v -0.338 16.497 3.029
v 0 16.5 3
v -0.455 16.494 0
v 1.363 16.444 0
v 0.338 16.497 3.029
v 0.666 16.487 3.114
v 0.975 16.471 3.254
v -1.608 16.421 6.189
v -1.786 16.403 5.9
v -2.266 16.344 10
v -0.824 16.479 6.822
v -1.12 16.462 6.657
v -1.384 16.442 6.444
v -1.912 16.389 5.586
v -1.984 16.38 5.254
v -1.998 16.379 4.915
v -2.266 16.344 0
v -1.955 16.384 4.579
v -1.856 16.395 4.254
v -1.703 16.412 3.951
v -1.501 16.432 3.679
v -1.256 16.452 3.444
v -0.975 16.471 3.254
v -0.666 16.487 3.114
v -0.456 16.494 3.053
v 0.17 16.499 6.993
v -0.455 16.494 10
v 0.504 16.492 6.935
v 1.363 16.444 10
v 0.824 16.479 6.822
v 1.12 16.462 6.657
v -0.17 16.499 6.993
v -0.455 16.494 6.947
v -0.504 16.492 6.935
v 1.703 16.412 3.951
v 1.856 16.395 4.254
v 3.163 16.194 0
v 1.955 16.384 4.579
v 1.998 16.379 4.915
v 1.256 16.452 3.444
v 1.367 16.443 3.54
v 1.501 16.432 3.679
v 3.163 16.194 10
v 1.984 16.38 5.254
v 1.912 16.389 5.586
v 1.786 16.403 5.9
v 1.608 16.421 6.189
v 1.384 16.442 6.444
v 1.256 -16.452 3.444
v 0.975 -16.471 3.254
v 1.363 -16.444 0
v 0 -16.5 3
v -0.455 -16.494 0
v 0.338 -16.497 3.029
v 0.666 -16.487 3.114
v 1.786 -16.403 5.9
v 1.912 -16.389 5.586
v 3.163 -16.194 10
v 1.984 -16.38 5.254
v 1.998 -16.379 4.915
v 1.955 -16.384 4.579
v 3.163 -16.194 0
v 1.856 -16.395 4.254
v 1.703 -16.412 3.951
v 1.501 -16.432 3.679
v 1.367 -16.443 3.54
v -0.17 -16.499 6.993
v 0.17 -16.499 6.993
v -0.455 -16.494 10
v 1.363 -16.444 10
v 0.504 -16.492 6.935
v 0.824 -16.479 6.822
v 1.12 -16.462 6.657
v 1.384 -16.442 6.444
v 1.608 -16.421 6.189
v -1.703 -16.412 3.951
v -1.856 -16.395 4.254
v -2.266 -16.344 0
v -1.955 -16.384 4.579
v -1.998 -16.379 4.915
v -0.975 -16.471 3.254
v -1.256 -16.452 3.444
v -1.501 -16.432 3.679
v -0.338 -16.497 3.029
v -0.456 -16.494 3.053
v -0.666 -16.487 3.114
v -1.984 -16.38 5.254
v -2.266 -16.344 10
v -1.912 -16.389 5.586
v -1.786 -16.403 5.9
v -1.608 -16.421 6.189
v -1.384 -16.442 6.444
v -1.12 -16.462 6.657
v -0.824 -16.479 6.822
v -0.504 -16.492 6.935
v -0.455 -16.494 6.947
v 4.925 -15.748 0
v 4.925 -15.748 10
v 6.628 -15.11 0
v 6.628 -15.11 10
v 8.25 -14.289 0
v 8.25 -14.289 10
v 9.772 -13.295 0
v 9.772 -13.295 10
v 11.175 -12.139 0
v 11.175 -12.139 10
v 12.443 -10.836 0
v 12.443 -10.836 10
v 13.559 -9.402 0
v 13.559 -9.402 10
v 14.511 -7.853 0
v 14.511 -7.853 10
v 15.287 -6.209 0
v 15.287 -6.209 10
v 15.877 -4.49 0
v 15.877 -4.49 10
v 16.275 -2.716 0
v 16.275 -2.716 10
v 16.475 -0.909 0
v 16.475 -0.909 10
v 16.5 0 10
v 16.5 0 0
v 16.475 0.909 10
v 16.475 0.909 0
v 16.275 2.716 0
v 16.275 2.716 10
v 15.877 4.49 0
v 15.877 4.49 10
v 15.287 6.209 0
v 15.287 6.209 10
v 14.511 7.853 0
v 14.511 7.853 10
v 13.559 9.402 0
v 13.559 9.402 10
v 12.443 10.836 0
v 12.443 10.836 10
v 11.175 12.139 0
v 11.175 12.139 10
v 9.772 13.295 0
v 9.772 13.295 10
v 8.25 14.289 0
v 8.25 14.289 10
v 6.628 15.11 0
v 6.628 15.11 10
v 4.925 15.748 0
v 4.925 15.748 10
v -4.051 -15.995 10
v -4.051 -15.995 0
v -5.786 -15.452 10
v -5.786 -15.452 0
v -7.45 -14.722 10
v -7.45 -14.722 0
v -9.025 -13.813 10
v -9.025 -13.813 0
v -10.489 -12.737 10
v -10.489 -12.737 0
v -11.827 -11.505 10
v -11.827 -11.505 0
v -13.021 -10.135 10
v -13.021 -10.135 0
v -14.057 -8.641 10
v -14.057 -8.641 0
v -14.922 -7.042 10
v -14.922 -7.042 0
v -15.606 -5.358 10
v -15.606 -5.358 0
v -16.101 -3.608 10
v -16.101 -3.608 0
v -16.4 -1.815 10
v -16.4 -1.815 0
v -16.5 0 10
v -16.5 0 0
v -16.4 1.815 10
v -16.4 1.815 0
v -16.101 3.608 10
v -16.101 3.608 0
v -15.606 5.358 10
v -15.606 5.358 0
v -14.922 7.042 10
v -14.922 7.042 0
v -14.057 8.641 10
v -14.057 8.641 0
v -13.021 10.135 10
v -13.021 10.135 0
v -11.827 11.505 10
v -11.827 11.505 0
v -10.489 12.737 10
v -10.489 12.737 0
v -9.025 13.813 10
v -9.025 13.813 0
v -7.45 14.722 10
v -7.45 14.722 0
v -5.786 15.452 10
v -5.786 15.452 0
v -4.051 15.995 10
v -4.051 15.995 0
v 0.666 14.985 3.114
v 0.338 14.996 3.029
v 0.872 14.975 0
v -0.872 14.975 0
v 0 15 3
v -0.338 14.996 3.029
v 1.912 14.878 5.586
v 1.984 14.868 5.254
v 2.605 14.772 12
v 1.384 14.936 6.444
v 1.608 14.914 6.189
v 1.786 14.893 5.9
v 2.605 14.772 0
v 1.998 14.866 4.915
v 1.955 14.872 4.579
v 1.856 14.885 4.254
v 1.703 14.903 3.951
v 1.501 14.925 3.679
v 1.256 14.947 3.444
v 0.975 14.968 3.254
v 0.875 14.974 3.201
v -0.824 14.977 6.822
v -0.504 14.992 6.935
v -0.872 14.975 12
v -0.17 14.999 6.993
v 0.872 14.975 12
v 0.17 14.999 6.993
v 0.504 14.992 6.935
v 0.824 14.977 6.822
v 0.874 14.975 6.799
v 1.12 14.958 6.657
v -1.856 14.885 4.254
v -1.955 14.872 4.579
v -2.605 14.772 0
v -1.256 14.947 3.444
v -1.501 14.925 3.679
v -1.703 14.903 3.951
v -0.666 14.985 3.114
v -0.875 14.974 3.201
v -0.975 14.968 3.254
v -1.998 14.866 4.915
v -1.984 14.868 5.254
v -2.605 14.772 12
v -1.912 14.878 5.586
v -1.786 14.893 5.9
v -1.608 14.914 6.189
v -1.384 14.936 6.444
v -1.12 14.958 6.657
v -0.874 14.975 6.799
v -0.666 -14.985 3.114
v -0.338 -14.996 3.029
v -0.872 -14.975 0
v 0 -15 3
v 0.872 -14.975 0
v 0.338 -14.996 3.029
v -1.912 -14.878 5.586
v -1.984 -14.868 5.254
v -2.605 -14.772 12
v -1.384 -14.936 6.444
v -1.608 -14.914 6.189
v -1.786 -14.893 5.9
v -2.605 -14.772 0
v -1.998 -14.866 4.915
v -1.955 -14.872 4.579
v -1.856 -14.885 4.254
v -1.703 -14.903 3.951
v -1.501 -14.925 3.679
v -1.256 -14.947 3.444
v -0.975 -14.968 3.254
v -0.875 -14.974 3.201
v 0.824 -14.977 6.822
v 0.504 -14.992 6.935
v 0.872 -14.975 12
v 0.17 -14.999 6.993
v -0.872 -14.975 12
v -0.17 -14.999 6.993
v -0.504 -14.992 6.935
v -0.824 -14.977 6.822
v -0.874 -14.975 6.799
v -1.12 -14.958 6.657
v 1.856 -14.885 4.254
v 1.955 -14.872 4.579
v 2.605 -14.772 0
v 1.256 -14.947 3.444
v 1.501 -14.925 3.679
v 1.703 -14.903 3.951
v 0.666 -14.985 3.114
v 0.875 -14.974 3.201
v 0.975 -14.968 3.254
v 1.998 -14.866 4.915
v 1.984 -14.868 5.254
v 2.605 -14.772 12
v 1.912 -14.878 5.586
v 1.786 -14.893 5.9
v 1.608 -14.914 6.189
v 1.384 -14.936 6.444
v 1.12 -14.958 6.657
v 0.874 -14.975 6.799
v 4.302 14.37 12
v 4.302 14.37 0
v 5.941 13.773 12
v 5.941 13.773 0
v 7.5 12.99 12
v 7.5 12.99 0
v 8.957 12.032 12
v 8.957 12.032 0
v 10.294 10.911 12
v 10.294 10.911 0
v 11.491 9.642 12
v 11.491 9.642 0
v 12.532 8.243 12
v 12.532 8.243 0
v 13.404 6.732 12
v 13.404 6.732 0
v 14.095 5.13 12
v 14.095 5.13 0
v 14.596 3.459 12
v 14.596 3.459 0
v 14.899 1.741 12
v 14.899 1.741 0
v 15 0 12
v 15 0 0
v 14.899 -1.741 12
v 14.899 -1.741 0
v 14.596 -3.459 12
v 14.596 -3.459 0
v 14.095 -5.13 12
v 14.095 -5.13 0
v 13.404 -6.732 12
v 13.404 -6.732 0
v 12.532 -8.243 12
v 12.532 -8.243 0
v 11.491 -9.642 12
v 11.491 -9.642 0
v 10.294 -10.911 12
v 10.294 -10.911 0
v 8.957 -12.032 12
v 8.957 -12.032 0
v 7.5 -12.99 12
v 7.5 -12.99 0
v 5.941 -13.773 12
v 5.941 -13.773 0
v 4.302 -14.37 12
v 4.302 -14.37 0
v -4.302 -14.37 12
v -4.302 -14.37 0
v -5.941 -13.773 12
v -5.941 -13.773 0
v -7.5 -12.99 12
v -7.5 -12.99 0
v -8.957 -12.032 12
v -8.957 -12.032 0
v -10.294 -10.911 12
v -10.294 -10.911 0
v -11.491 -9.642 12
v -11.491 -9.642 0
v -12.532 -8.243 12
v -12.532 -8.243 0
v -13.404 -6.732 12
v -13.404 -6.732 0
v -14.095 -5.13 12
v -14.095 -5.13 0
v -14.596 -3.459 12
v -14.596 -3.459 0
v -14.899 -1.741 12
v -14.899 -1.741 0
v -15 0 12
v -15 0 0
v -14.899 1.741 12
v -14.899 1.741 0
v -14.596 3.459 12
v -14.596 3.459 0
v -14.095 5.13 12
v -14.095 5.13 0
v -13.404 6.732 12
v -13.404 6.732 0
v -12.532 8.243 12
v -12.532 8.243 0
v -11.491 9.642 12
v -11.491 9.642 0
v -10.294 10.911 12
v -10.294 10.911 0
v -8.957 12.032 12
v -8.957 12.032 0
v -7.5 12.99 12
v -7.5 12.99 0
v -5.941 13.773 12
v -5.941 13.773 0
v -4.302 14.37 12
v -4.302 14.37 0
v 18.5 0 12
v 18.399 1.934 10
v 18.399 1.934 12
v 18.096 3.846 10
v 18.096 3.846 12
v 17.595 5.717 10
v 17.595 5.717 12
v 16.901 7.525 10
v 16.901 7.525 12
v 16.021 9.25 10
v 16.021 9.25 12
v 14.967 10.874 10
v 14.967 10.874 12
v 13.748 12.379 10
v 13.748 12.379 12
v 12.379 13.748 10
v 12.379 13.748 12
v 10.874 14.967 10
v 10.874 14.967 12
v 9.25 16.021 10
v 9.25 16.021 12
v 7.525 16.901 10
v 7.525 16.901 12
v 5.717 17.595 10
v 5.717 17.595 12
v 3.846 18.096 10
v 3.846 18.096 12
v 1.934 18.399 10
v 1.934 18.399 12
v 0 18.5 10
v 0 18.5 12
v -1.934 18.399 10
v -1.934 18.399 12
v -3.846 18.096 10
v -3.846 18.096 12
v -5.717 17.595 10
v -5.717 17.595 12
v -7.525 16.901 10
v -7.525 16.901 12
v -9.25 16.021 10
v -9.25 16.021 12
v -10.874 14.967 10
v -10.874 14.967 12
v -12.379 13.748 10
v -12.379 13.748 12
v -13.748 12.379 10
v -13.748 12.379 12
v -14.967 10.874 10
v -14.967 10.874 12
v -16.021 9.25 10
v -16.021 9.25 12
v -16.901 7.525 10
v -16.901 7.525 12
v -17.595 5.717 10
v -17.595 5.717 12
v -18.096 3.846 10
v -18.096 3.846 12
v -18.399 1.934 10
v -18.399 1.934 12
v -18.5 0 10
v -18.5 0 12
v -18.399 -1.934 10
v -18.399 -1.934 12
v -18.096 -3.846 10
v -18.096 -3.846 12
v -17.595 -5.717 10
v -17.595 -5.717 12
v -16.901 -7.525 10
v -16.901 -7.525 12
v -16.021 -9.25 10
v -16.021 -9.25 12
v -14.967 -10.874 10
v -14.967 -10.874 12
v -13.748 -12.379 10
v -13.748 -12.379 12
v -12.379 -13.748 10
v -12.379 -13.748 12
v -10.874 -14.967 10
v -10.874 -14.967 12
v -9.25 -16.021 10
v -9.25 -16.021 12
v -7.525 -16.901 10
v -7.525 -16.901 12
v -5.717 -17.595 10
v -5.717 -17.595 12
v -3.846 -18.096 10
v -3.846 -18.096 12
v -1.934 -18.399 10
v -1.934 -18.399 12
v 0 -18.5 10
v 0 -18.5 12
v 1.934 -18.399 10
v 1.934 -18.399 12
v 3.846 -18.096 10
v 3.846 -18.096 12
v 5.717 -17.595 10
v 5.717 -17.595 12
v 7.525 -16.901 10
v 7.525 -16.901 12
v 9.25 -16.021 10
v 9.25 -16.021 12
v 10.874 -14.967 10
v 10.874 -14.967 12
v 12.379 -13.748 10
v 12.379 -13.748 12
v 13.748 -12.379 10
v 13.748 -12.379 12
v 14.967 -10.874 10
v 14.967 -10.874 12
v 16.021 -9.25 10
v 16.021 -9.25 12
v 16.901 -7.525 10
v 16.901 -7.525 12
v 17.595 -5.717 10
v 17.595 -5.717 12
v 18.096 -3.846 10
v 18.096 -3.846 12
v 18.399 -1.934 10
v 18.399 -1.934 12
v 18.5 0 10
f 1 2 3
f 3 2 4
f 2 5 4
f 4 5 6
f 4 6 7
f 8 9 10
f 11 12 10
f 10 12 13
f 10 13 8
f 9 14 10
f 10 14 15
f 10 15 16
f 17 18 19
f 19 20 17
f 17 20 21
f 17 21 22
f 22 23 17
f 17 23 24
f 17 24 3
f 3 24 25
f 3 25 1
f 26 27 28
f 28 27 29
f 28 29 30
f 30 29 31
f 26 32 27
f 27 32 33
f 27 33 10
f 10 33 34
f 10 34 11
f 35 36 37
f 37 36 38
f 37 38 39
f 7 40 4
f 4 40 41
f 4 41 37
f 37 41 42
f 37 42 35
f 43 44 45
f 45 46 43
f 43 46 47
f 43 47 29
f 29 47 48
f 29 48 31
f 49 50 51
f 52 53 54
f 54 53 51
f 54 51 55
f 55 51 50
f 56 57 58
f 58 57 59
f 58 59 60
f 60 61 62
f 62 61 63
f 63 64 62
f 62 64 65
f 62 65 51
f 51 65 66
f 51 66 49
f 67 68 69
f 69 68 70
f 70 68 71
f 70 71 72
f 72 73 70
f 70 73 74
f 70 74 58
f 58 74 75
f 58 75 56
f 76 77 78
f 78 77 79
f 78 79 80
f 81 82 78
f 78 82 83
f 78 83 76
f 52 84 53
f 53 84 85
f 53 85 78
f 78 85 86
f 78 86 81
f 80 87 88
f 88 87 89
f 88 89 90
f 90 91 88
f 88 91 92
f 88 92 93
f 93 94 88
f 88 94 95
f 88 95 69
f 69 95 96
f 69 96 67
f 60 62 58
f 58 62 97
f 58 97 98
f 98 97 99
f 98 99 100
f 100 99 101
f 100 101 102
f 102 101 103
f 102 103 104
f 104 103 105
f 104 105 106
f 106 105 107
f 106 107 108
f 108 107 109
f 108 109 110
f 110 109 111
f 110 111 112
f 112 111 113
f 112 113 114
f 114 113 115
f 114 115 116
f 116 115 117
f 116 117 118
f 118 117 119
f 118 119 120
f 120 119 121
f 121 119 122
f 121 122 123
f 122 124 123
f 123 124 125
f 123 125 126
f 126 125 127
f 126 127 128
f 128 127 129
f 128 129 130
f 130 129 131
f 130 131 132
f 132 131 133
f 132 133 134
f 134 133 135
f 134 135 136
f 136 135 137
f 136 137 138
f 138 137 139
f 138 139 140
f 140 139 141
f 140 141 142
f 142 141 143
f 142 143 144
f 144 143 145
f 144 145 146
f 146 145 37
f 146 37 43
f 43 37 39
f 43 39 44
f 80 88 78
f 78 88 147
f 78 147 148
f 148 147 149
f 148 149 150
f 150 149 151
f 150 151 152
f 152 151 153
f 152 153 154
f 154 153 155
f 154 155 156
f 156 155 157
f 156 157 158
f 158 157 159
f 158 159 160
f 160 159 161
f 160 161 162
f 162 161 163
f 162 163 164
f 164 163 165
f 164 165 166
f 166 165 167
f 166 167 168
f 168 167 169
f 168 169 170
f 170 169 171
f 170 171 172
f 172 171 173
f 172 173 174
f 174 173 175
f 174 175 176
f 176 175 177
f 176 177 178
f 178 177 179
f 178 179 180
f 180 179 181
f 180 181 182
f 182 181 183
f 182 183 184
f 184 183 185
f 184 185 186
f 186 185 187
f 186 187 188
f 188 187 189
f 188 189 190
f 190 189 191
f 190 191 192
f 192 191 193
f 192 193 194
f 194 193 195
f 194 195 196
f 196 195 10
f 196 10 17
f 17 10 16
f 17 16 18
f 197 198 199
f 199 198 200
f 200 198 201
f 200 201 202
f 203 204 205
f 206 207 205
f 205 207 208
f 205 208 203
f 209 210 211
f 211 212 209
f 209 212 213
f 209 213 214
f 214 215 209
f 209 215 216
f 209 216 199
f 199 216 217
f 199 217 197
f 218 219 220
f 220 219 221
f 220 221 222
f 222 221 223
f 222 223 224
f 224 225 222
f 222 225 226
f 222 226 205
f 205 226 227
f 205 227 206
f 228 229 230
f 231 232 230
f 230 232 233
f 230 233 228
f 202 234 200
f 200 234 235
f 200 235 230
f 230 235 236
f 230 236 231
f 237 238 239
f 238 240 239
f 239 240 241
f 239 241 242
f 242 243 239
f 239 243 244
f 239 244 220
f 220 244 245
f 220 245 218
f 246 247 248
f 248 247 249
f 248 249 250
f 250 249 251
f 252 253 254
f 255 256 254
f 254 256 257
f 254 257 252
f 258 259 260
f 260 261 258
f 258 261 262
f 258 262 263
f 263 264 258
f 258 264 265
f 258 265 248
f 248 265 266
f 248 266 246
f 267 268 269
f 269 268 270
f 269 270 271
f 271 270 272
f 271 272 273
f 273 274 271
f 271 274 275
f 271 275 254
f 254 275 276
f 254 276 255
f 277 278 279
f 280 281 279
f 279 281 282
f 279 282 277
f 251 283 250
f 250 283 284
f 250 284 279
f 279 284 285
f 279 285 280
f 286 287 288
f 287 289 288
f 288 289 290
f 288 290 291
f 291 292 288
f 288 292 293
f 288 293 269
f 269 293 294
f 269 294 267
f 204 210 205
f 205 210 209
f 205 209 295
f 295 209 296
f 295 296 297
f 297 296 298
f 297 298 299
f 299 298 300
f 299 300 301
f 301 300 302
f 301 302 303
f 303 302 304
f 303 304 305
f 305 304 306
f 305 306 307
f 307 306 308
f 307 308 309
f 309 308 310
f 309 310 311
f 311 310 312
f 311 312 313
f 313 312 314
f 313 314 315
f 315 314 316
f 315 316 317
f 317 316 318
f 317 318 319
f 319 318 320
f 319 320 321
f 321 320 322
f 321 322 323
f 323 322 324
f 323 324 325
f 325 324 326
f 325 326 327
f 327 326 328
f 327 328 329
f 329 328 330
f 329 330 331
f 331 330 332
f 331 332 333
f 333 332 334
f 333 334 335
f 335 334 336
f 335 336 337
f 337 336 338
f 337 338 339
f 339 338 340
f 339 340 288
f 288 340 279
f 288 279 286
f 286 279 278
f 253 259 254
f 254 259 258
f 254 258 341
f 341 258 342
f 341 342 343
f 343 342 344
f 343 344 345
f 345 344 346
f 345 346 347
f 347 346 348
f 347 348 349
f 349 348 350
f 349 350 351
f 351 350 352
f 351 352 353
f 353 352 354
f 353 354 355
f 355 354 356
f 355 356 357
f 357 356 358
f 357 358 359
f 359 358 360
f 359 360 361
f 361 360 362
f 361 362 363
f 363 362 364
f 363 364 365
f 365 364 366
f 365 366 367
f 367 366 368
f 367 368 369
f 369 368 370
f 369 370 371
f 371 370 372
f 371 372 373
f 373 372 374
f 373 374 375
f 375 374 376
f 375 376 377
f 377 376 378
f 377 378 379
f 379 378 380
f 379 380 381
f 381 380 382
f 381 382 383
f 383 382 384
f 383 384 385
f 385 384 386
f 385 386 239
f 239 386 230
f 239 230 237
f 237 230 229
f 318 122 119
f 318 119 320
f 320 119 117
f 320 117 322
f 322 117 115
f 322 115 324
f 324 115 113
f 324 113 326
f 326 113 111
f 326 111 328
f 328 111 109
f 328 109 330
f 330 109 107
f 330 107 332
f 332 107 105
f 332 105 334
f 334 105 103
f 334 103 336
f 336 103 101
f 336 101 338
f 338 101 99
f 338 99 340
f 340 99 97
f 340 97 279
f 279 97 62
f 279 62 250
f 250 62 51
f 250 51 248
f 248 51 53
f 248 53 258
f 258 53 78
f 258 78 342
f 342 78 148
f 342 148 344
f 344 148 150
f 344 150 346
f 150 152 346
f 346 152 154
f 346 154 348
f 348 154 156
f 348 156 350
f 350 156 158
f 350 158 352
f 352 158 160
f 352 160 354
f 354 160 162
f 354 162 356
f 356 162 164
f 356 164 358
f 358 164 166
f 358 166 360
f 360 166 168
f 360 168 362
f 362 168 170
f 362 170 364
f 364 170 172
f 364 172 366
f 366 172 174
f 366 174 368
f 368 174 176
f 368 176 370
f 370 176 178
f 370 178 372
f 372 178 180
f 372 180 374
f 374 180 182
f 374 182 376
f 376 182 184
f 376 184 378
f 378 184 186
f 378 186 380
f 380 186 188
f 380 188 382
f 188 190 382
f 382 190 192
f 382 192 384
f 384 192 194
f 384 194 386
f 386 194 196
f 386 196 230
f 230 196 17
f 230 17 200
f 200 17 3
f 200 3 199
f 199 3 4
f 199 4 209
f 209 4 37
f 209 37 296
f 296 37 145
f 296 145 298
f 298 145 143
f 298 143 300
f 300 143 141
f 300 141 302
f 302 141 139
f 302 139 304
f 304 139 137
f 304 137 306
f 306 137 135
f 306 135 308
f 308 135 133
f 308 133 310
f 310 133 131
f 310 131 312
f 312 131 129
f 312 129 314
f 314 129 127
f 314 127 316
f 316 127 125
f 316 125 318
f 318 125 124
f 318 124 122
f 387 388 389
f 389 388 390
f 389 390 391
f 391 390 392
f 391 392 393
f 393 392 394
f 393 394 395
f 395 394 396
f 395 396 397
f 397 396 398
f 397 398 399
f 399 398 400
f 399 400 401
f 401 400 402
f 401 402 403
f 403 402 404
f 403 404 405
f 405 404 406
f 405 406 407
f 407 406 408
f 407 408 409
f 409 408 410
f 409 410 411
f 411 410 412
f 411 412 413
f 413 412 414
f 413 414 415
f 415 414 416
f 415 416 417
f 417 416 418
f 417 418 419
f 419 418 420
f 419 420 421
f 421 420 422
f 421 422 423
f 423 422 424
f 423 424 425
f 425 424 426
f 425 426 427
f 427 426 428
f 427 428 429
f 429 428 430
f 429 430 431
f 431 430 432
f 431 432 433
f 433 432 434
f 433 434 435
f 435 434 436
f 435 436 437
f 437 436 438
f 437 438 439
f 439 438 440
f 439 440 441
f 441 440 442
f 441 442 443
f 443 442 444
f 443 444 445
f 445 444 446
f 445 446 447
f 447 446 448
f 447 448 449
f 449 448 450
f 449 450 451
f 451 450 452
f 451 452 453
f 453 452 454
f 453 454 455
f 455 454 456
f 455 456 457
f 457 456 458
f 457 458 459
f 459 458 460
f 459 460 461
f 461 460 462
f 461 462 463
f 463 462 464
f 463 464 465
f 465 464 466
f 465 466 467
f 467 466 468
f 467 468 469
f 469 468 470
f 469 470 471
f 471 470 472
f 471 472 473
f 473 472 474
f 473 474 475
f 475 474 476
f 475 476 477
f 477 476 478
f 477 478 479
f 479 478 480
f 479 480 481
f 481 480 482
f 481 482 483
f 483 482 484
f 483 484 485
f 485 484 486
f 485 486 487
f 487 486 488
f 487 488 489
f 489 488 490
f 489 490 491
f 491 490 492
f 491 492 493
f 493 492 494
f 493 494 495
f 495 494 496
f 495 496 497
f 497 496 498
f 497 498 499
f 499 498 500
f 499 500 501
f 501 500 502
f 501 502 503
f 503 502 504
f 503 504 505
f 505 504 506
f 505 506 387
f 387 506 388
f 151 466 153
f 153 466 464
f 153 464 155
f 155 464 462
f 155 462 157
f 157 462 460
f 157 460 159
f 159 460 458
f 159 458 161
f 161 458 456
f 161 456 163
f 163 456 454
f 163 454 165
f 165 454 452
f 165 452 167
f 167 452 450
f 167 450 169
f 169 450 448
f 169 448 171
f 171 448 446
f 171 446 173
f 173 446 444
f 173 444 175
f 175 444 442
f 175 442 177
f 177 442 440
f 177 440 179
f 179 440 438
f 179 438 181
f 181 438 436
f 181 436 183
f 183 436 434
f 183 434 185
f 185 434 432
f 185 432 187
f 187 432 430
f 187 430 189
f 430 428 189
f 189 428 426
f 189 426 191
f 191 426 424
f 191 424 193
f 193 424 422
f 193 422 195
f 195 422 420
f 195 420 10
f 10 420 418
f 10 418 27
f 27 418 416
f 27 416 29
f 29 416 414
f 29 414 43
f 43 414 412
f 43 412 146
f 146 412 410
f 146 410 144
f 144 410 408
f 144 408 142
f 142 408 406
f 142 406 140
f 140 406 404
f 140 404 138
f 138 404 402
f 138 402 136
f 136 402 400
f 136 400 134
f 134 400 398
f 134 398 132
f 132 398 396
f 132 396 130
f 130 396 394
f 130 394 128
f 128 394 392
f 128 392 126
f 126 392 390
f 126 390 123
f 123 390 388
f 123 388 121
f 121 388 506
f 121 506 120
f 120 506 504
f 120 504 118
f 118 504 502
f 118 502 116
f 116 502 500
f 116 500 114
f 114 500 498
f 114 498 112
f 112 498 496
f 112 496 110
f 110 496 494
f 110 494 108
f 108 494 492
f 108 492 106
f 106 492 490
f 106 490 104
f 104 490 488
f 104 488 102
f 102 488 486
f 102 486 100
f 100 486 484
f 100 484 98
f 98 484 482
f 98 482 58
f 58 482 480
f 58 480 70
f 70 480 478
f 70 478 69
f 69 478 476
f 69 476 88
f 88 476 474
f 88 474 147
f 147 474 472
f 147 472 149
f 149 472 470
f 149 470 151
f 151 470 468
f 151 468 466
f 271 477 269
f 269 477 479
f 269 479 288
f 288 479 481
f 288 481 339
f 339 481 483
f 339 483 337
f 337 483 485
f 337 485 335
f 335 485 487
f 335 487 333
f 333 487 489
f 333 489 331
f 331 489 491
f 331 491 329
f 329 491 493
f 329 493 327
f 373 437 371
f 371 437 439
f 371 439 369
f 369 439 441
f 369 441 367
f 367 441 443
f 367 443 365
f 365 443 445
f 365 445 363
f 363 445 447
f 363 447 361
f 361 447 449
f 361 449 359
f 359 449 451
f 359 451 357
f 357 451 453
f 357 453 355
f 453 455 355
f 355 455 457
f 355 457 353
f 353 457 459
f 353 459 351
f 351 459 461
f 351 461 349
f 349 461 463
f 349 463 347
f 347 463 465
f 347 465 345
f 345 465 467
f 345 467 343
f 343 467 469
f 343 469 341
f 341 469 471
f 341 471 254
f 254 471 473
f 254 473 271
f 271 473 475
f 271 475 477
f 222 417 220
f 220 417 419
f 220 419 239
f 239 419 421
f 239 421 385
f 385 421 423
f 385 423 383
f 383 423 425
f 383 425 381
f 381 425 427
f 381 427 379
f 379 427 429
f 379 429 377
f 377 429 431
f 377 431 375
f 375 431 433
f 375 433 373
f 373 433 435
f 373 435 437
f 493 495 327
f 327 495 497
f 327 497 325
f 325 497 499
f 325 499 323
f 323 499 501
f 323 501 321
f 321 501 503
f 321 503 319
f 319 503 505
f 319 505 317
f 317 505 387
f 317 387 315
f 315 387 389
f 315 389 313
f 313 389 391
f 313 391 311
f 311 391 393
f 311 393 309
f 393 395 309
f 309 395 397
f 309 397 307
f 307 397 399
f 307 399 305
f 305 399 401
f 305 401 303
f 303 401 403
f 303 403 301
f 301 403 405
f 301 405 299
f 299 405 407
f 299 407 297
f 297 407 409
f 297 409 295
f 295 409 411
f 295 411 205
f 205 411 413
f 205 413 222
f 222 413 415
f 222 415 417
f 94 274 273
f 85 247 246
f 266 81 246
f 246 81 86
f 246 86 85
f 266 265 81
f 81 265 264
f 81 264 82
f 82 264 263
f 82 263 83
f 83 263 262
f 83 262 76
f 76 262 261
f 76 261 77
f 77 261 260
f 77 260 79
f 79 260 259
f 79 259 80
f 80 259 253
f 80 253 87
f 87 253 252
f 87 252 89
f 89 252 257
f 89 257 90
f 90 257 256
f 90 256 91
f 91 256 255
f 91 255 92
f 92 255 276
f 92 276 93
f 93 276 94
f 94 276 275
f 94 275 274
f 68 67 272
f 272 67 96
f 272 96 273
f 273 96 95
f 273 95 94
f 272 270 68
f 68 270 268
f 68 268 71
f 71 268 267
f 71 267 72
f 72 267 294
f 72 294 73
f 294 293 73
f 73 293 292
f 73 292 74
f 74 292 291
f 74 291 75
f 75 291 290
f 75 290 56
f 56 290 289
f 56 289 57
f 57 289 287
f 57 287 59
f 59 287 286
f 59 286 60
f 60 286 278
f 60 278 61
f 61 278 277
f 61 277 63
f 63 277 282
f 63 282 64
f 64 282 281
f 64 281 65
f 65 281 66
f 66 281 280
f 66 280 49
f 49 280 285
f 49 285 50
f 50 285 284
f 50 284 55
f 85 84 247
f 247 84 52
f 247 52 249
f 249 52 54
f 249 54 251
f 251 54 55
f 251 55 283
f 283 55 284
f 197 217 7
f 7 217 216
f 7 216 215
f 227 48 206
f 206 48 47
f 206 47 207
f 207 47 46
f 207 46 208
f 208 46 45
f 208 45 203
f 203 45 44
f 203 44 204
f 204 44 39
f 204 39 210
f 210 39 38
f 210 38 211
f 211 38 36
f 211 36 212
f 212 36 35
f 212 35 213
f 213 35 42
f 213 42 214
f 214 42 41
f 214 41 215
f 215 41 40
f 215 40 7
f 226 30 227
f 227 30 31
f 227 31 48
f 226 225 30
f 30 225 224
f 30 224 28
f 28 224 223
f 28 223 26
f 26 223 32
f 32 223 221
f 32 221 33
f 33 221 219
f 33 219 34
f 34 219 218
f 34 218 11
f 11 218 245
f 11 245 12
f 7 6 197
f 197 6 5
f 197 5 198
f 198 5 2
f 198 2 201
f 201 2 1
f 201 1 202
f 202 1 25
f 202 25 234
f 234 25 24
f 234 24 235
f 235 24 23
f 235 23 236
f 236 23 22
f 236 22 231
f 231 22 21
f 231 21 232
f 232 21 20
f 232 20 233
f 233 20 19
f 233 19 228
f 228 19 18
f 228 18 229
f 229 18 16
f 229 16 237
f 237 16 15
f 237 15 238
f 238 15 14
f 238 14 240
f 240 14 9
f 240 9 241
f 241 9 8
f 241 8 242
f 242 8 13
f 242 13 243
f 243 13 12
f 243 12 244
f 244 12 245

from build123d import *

# Parameters (mm, degrees)
CROQUIS2_R                 = 16.5
CROQUIS2_R_2               = 15
SALIENTE_EXTRUIR1_DEPTH    = 12
CROQUIS3_R                 = 18.5
SALIENTE_EXTRUIR2_DEPTH    = 2
CROQUIS4_R                 = 15
CORTAR_EXTRUIR1_DEPTH      = 2
CORTAR_EXTRUIR2_DEPTH      = 22
CORTAR_EXTRUIR2_DEPTH_BACK = 21
CROQUIS5_R                 = 2


with BuildPart() as part:
    # Croquis2 → Saliente-Extruir1 (new body)
    with BuildSketch(Plane.XY):
        Circle(CROQUIS2_R)
        Circle(CROQUIS2_R_2, mode=Mode.SUBTRACT)
    extrude(amount=SALIENTE_EXTRUIR1_DEPTH)

    # Croquis3 → Saliente-Extruir2 (add)
    with BuildSketch(Plane.XY.offset(12)):
        Circle(CROQUIS3_R)
    extrude(amount=-SALIENTE_EXTRUIR2_DEPTH)

    # Croquis4 → Cortar-Extruir1 (cut)
    with BuildSketch(Plane(origin=(0, 0, 10), x_dir=(-1, 0, 0), z_dir=(0, 0, -1))):
        Circle(CROQUIS4_R)
    extrude(amount=-CORTAR_EXTRUIR1_DEPTH, mode=Mode.SUBTRACT)

    # Croquis5 → Cortar-Extruir2 (cut, two sides: drawn at the far end of the back side and taken through both)
    with BuildSketch(Plane(origin=(0, 0, 0), x_dir=(1, 0, 0), z_dir=(0, 1, 0)).offset(-CORTAR_EXTRUIR2_DEPTH_BACK)):
        with Locations(Location((0, -5, 0), (0, 0, 90))):
            Circle(CROQUIS5_R)
    extrude(amount=CORTAR_EXTRUIR2_DEPTH + CORTAR_EXTRUIR2_DEPTH_BACK, mode=Mode.SUBTRACT)


solid = part.part
